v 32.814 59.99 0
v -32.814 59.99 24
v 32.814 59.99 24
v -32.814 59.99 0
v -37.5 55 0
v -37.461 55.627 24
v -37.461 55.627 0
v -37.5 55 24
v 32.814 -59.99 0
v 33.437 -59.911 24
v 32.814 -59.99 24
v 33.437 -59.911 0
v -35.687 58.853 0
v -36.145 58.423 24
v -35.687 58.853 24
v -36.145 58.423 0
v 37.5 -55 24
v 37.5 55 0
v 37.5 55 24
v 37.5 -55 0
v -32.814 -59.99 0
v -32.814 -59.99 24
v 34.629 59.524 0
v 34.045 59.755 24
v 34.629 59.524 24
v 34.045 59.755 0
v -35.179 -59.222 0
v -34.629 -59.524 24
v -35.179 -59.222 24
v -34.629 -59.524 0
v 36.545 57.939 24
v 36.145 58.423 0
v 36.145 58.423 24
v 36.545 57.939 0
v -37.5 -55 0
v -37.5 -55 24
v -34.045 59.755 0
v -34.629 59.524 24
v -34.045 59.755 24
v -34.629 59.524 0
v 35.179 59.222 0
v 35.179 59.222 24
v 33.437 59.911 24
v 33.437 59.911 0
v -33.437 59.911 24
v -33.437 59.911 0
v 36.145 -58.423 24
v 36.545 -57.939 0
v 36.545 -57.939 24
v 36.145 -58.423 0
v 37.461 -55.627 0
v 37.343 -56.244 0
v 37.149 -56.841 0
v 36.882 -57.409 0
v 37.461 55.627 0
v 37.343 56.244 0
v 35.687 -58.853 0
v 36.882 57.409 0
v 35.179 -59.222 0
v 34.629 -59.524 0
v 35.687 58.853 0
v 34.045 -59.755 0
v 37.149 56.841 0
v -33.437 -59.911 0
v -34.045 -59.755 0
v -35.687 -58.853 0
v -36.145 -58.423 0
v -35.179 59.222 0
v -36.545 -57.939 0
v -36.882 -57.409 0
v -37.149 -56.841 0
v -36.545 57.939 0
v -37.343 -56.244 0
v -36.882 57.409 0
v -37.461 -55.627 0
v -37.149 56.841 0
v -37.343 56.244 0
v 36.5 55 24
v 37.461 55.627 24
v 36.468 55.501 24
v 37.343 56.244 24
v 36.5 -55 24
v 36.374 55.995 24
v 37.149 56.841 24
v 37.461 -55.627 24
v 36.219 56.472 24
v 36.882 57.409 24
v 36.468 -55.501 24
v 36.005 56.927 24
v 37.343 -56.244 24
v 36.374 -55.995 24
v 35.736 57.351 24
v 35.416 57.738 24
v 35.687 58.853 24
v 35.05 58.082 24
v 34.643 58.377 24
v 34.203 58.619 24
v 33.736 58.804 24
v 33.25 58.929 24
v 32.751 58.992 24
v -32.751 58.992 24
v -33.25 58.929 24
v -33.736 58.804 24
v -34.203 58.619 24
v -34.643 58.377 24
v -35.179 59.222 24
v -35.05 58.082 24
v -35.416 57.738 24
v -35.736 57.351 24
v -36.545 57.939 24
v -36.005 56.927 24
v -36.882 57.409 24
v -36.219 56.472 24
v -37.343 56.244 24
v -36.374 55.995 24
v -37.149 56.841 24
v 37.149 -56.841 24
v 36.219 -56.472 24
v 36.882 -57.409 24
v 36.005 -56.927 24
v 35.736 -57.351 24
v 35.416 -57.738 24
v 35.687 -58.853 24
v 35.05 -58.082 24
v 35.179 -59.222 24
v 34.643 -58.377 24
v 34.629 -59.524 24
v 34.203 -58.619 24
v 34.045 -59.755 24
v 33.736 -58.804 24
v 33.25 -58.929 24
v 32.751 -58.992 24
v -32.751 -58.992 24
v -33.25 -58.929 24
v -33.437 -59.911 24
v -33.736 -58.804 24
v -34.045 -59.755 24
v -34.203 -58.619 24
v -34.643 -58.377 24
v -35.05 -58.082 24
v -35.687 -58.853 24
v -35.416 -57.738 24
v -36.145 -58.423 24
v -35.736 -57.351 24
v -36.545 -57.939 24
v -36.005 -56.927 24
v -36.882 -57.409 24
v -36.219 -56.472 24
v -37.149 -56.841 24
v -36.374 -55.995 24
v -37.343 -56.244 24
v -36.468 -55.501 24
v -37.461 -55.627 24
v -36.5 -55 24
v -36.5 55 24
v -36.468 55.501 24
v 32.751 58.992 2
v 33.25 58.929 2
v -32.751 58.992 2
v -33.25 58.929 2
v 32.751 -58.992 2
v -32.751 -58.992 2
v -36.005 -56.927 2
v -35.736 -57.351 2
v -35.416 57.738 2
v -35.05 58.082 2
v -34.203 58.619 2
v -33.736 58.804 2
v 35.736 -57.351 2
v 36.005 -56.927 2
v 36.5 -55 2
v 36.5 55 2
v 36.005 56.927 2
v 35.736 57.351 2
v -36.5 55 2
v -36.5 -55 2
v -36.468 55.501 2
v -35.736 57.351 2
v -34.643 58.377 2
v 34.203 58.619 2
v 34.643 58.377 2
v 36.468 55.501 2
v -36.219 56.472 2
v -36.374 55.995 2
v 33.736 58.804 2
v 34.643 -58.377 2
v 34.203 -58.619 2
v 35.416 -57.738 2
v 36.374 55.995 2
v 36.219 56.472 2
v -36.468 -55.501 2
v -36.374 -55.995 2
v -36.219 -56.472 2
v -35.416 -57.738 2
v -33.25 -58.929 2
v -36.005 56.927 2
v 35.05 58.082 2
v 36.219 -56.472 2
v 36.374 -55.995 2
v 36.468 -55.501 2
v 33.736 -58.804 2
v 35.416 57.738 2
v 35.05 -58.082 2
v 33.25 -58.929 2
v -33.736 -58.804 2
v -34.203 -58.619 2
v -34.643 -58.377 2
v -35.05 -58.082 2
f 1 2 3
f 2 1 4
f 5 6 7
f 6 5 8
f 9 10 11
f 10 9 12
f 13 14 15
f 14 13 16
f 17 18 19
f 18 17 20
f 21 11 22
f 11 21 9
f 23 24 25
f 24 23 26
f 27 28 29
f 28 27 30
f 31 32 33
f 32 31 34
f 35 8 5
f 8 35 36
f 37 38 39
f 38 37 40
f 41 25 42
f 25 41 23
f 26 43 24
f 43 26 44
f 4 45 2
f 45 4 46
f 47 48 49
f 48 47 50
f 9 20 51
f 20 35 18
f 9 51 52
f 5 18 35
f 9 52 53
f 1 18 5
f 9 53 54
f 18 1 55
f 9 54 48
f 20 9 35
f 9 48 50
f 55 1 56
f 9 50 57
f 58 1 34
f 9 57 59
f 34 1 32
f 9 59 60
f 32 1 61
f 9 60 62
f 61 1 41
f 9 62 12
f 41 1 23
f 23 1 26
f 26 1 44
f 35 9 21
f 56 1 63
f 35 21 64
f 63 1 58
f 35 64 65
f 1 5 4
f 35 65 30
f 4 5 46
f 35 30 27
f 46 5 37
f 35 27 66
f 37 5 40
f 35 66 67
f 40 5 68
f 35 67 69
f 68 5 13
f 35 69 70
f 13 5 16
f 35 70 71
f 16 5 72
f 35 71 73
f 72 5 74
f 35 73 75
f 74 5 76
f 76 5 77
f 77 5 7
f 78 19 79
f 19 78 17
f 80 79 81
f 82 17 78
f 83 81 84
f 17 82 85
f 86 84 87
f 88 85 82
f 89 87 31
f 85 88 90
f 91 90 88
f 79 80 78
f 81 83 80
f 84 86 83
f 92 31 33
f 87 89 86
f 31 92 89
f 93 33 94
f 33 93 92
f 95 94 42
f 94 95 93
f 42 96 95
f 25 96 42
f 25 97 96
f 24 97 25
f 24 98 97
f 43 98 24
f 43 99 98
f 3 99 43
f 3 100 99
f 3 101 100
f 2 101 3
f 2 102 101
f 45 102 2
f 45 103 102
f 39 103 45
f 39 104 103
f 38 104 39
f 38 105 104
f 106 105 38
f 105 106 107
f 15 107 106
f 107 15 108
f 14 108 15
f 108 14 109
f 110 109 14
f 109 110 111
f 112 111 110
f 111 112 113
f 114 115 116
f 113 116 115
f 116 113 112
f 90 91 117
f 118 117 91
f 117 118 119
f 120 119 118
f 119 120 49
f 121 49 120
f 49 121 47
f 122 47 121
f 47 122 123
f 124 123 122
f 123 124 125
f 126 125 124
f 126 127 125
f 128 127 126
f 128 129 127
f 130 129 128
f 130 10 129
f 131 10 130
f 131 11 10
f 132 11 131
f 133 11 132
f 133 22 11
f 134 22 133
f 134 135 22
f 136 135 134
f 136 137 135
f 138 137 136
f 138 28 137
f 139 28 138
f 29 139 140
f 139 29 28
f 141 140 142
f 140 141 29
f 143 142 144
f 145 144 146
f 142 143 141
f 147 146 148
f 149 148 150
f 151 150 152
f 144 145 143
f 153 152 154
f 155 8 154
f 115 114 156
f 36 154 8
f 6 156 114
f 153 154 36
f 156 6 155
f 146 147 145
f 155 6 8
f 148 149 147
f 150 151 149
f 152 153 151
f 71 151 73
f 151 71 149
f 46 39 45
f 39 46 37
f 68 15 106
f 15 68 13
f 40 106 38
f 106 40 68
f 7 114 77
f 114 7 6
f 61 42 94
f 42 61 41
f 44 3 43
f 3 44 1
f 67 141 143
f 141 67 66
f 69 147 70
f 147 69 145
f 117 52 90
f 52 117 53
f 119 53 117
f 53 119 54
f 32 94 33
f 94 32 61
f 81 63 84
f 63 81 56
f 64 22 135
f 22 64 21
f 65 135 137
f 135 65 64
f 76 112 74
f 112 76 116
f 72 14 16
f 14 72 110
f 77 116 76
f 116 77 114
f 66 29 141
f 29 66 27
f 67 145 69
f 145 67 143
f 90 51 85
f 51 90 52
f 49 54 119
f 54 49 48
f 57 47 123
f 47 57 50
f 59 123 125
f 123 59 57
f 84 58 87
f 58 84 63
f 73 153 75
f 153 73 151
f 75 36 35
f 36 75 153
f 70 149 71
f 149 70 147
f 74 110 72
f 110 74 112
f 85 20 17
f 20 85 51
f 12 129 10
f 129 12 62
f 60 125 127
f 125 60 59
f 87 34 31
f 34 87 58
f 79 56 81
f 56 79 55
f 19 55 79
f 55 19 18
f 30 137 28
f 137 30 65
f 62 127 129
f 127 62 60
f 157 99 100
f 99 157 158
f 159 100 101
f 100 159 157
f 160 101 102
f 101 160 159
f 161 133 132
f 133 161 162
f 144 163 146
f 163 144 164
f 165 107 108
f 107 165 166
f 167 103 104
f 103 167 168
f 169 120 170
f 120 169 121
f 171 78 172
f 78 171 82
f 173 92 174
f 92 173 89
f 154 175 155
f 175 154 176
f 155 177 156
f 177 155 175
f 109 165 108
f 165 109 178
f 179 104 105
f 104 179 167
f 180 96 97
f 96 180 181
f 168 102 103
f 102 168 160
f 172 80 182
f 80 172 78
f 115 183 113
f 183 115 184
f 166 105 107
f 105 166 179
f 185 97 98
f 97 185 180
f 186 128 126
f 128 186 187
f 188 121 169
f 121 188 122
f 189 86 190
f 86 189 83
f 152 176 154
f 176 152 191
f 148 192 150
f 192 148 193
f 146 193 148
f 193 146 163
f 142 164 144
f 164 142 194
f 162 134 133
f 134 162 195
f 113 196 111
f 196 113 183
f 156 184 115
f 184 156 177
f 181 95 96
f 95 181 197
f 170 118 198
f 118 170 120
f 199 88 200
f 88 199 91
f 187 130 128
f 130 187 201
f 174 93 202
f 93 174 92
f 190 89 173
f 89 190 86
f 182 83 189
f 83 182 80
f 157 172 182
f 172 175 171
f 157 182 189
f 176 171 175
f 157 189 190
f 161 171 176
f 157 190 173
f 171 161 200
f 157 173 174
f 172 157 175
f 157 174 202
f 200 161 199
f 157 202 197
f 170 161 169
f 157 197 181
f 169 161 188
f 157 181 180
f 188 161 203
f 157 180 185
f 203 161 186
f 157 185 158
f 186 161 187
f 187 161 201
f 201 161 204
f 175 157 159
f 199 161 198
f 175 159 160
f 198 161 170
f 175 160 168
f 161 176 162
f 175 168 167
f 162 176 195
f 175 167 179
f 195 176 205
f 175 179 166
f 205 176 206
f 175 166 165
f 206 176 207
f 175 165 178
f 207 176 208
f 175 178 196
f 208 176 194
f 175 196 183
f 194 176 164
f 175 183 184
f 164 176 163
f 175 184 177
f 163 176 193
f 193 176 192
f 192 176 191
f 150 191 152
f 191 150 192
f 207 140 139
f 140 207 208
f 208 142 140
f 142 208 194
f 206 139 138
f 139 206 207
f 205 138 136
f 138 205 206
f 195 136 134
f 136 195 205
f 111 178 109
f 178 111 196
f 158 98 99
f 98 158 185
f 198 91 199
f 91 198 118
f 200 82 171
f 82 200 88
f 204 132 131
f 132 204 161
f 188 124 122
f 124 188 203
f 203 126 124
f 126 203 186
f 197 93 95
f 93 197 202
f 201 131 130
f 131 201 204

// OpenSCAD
$fn = 50;


difference() {
	union() {
		hull() {
			translate(v = [-32.5000000000, 55.0000000000, 0]) {
				cylinder(h = 24, r = 5);
			}
			translate(v = [32.5000000000, 55.0000000000, 0]) {
				cylinder(h = 24, r = 5);
			}
			translate(v = [-32.5000000000, -55.0000000000, 0]) {
				cylinder(h = 24, r = 5);
			}
			translate(v = [32.5000000000, -55.0000000000, 0]) {
				cylinder(h = 24, r = 5);
			}
		}
	}
	union() {
		translate(v = [0, 0, 2]) {
			hull() {
				translate(v = [-32.5000000000, 55.0000000000, 0]) {
					cylinder(h = 22, r = 4);
				}
				translate(v = [32.5000000000, 55.0000000000, 0]) {
					cylinder(h = 22, r = 4);
				}
				translate(v = [-32.5000000000, -55.0000000000, 0]) {
					cylinder(h = 22, r = 4);
				}
				translate(v = [32.5000000000, -55.0000000000, 0]) {
					cylinder(h = 22, r = 4);
				}
			}
		}
	}
}
